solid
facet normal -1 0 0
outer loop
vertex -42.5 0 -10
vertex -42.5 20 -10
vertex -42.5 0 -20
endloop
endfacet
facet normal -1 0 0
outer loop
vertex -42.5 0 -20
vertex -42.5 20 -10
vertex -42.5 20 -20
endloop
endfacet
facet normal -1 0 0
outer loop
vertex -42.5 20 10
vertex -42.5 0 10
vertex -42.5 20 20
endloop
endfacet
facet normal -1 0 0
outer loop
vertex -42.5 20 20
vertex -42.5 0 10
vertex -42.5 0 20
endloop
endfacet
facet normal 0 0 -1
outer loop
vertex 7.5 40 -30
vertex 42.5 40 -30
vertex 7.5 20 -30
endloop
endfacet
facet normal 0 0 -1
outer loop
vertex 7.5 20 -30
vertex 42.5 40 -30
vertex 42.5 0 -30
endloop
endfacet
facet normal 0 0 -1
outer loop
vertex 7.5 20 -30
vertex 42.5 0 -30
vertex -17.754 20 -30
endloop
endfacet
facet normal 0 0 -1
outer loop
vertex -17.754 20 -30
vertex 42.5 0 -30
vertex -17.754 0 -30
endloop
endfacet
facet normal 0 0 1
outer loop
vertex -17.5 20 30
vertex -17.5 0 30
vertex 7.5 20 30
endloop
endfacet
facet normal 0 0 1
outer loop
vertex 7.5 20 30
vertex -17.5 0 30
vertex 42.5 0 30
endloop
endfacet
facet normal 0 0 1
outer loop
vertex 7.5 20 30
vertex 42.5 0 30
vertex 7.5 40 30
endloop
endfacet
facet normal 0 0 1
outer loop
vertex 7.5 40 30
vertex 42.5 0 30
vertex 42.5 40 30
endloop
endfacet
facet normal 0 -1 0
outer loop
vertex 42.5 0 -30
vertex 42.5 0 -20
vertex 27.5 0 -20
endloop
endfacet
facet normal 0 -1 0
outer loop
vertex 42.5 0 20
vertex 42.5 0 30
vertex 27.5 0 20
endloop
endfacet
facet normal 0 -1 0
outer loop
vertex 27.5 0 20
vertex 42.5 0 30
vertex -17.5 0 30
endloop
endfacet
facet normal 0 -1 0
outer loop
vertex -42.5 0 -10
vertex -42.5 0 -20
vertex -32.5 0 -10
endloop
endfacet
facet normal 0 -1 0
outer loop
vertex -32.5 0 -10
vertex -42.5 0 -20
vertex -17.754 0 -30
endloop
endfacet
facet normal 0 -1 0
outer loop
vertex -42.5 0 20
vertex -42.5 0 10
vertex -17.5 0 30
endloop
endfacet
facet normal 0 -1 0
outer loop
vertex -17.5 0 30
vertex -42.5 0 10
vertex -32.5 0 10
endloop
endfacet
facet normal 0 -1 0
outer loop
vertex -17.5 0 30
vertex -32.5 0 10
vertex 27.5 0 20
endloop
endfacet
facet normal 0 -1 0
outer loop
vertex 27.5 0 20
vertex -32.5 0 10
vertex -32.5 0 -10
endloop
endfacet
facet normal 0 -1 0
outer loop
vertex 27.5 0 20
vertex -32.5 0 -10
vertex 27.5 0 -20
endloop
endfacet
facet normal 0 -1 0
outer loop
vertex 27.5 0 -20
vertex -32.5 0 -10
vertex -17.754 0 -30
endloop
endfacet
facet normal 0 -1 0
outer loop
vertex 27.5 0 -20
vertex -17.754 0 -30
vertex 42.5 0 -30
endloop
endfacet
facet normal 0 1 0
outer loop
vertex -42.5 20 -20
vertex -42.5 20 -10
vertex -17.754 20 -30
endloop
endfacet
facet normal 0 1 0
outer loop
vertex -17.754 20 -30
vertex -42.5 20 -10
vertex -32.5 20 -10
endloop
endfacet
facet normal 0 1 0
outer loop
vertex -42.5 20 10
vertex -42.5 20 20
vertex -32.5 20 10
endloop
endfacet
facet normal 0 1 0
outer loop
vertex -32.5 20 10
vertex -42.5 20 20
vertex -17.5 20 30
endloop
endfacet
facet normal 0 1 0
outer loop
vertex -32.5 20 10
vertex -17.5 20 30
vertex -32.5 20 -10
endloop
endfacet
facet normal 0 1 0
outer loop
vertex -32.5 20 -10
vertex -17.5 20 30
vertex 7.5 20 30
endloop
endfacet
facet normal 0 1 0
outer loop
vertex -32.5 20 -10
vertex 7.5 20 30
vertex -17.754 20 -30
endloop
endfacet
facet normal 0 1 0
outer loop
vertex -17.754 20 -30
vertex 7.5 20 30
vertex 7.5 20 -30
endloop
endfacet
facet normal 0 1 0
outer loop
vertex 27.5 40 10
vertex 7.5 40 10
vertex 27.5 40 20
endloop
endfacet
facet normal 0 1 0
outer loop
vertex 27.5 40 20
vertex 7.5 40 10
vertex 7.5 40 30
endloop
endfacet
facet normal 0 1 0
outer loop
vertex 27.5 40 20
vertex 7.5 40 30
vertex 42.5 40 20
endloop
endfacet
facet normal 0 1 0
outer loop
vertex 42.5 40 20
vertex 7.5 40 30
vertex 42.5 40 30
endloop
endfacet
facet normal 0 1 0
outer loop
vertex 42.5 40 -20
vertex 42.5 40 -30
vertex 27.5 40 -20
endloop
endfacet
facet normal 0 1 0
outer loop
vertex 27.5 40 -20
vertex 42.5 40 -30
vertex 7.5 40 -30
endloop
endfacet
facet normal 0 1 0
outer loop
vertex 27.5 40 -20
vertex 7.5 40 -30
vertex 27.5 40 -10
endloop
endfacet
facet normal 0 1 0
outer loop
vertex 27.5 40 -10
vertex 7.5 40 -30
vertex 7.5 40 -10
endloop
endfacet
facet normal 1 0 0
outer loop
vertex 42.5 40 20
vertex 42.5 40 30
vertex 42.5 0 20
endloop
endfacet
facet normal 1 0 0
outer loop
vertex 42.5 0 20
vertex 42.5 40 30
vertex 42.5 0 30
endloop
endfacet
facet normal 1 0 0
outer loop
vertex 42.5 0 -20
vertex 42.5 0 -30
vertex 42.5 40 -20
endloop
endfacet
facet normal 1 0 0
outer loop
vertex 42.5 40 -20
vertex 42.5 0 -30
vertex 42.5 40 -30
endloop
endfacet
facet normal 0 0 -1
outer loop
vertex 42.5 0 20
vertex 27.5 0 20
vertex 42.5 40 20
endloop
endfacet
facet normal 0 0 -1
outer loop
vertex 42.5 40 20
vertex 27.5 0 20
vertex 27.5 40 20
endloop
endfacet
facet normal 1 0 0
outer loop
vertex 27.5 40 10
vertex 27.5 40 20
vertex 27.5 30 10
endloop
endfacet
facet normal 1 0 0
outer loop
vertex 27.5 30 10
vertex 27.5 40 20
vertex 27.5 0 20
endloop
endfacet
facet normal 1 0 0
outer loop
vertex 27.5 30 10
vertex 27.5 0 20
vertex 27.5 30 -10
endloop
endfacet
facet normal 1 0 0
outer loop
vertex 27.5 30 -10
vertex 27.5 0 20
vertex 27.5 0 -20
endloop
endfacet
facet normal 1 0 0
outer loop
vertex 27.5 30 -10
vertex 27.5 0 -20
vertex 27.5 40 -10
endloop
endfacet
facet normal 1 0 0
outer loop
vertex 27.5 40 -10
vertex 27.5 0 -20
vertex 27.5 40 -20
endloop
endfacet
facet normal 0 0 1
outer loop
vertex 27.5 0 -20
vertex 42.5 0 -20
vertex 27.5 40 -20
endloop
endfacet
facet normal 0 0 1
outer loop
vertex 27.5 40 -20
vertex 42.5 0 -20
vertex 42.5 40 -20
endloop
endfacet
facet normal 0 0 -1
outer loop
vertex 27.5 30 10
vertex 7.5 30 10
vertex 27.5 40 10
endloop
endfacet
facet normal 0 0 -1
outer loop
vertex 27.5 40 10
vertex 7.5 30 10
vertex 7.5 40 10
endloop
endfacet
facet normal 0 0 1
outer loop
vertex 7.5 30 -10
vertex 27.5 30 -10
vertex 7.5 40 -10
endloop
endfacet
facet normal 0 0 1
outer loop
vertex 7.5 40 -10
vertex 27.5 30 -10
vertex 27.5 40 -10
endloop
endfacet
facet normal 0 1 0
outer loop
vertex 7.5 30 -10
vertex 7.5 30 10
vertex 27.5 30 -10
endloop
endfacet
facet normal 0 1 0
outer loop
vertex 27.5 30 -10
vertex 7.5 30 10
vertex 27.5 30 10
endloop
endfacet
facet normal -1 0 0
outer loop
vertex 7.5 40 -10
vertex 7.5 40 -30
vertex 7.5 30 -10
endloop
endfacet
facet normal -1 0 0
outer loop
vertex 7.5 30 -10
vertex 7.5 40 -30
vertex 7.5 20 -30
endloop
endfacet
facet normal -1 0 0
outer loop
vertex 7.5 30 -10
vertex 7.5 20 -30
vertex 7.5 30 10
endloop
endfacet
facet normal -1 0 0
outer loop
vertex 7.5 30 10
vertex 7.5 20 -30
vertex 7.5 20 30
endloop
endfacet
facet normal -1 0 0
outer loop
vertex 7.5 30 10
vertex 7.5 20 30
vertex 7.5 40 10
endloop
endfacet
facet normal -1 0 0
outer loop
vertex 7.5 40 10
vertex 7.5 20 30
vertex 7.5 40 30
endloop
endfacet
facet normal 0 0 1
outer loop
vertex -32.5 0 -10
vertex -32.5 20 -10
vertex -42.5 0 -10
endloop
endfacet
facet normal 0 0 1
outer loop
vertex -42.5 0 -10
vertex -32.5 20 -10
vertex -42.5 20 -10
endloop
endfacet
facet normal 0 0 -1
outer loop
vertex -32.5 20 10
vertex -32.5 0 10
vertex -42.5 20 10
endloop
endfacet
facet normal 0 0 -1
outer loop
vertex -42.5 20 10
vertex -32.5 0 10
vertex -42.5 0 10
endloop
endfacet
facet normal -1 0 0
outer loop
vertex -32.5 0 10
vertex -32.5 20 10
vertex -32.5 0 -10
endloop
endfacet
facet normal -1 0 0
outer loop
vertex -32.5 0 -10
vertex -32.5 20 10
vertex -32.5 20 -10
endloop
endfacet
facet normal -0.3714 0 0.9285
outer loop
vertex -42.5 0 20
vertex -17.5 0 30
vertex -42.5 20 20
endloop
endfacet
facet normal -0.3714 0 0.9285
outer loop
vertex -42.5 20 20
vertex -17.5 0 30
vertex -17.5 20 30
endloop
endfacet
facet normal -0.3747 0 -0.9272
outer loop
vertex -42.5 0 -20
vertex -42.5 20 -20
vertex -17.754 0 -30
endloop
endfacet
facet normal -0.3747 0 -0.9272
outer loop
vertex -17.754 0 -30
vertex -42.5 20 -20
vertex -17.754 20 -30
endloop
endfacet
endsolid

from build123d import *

# Parameters (mm, degrees)
SKETCH1_W               = 85
SKETCH1_H               = 60
BOSS_EXTRUDE1_DEPTH     = 40
SKETCH2_W               = 15
SKETCH2_H               = 40
CUT_EXTRUDE1_DEPTH      = 66.622023742
SKETCH3_W               = 20
SKETCH3_H               = 20
CUT_EXTRUDE2_DEPTH      = 10
CUT_EXTRUDE9_DEPTH      = 66.622023742
CUT_EXTRUDE9_DEPTH_BACK = 20
SKETCH6_W               = 20
SKETCH6_H               = 20
CUT_EXTRUDE10_DEPTH     = 10
CUT_EXTRUDE_THIN5_DEPTH = 56.733742024


with BuildPart() as part:
    # Sketch1 → Boss-Extrude1 (new body)
    with BuildSketch(Plane(origin=(0, 0, 0), x_dir=(1, 0, 0), z_dir=(0, 1, 0))):
        Rectangle(SKETCH1_W, SKETCH1_H)
    extrude(amount=BOSS_EXTRUDE1_DEPTH)

    # Sketch2 → Cut-Extrude1 (cut, through all)
    with BuildSketch(Plane(origin=(0, 40, 0), x_dir=(1, 0, 0), z_dir=(0, 1, 0))):
        with Locations((35, 0)):
            Rectangle(SKETCH2_W, SKETCH2_H)
    extrude(amount=-CUT_EXTRUDE1_DEPTH, mode=Mode.SUBTRACT)

    # Sketch3 → Cut-Extrude2 (cut)
    with BuildSketch(Plane(origin=(0, 40, 0), x_dir=(1, 0, 0), z_dir=(0, 1, 0))):
        with Locations((17.5, 0)):
            Rectangle(SKETCH3_W, SKETCH3_H)
    extrude(amount=-CUT_EXTRUDE2_DEPTH, mode=Mode.SUBTRACT)

    # Sketch4 → Cut-Extrude9 (cut, two sides: drawn at the far end of the back side and taken through both)
    with BuildSketch(Plane(origin=(0, 40, 0), x_dir=(1, 0, 0), z_dir=(0, 1, 0)).offset(-CUT_EXTRUDE9_DEPTH_BACK)):
        Polygon((7.5, 208.497084776), (7.5, 33.386024926), (7.5, -35.691822331), (7.5, -210.802882181), (-342.7221197, -210.802882181), (-342.7221197, 208.497084776), align=None)
    extrude(amount=CUT_EXTRUDE9_DEPTH + CUT_EXTRUDE9_DEPTH_BACK, mode=Mode.SUBTRACT)

    # Sketch6 → Cut-Extrude10 (cut)
    with BuildSketch(Plane.ZY.offset(42.5)):
        with Locations((0, 10)):
            Rectangle(SKETCH6_W, SKETCH6_H)
    extrude(amount=-CUT_EXTRUDE10_DEPTH, mode=Mode.SUBTRACT)

    # Sketch9 → Cut-Extrude-Thin5 (cut, through all)
    with BuildSketch(Plane(origin=(0, 20, 0), x_dir=(1, 0, 0), z_dir=(0, 1, 0))):
        Polygon((-17.5, 30.102443268), (-42.5, 20), (-46.246635858, 29.271608261), (-21.246635858, 39.374051529), align=None)
        Polygon((-42.5, -20), (-17.5, -30), (-21.213906764, -39.284766909), (-46.213906764, -29.284766909), align=None)
    extrude(amount=-CUT_EXTRUDE_THIN5_DEPTH, mode=Mode.SUBTRACT)


solid = part.part
